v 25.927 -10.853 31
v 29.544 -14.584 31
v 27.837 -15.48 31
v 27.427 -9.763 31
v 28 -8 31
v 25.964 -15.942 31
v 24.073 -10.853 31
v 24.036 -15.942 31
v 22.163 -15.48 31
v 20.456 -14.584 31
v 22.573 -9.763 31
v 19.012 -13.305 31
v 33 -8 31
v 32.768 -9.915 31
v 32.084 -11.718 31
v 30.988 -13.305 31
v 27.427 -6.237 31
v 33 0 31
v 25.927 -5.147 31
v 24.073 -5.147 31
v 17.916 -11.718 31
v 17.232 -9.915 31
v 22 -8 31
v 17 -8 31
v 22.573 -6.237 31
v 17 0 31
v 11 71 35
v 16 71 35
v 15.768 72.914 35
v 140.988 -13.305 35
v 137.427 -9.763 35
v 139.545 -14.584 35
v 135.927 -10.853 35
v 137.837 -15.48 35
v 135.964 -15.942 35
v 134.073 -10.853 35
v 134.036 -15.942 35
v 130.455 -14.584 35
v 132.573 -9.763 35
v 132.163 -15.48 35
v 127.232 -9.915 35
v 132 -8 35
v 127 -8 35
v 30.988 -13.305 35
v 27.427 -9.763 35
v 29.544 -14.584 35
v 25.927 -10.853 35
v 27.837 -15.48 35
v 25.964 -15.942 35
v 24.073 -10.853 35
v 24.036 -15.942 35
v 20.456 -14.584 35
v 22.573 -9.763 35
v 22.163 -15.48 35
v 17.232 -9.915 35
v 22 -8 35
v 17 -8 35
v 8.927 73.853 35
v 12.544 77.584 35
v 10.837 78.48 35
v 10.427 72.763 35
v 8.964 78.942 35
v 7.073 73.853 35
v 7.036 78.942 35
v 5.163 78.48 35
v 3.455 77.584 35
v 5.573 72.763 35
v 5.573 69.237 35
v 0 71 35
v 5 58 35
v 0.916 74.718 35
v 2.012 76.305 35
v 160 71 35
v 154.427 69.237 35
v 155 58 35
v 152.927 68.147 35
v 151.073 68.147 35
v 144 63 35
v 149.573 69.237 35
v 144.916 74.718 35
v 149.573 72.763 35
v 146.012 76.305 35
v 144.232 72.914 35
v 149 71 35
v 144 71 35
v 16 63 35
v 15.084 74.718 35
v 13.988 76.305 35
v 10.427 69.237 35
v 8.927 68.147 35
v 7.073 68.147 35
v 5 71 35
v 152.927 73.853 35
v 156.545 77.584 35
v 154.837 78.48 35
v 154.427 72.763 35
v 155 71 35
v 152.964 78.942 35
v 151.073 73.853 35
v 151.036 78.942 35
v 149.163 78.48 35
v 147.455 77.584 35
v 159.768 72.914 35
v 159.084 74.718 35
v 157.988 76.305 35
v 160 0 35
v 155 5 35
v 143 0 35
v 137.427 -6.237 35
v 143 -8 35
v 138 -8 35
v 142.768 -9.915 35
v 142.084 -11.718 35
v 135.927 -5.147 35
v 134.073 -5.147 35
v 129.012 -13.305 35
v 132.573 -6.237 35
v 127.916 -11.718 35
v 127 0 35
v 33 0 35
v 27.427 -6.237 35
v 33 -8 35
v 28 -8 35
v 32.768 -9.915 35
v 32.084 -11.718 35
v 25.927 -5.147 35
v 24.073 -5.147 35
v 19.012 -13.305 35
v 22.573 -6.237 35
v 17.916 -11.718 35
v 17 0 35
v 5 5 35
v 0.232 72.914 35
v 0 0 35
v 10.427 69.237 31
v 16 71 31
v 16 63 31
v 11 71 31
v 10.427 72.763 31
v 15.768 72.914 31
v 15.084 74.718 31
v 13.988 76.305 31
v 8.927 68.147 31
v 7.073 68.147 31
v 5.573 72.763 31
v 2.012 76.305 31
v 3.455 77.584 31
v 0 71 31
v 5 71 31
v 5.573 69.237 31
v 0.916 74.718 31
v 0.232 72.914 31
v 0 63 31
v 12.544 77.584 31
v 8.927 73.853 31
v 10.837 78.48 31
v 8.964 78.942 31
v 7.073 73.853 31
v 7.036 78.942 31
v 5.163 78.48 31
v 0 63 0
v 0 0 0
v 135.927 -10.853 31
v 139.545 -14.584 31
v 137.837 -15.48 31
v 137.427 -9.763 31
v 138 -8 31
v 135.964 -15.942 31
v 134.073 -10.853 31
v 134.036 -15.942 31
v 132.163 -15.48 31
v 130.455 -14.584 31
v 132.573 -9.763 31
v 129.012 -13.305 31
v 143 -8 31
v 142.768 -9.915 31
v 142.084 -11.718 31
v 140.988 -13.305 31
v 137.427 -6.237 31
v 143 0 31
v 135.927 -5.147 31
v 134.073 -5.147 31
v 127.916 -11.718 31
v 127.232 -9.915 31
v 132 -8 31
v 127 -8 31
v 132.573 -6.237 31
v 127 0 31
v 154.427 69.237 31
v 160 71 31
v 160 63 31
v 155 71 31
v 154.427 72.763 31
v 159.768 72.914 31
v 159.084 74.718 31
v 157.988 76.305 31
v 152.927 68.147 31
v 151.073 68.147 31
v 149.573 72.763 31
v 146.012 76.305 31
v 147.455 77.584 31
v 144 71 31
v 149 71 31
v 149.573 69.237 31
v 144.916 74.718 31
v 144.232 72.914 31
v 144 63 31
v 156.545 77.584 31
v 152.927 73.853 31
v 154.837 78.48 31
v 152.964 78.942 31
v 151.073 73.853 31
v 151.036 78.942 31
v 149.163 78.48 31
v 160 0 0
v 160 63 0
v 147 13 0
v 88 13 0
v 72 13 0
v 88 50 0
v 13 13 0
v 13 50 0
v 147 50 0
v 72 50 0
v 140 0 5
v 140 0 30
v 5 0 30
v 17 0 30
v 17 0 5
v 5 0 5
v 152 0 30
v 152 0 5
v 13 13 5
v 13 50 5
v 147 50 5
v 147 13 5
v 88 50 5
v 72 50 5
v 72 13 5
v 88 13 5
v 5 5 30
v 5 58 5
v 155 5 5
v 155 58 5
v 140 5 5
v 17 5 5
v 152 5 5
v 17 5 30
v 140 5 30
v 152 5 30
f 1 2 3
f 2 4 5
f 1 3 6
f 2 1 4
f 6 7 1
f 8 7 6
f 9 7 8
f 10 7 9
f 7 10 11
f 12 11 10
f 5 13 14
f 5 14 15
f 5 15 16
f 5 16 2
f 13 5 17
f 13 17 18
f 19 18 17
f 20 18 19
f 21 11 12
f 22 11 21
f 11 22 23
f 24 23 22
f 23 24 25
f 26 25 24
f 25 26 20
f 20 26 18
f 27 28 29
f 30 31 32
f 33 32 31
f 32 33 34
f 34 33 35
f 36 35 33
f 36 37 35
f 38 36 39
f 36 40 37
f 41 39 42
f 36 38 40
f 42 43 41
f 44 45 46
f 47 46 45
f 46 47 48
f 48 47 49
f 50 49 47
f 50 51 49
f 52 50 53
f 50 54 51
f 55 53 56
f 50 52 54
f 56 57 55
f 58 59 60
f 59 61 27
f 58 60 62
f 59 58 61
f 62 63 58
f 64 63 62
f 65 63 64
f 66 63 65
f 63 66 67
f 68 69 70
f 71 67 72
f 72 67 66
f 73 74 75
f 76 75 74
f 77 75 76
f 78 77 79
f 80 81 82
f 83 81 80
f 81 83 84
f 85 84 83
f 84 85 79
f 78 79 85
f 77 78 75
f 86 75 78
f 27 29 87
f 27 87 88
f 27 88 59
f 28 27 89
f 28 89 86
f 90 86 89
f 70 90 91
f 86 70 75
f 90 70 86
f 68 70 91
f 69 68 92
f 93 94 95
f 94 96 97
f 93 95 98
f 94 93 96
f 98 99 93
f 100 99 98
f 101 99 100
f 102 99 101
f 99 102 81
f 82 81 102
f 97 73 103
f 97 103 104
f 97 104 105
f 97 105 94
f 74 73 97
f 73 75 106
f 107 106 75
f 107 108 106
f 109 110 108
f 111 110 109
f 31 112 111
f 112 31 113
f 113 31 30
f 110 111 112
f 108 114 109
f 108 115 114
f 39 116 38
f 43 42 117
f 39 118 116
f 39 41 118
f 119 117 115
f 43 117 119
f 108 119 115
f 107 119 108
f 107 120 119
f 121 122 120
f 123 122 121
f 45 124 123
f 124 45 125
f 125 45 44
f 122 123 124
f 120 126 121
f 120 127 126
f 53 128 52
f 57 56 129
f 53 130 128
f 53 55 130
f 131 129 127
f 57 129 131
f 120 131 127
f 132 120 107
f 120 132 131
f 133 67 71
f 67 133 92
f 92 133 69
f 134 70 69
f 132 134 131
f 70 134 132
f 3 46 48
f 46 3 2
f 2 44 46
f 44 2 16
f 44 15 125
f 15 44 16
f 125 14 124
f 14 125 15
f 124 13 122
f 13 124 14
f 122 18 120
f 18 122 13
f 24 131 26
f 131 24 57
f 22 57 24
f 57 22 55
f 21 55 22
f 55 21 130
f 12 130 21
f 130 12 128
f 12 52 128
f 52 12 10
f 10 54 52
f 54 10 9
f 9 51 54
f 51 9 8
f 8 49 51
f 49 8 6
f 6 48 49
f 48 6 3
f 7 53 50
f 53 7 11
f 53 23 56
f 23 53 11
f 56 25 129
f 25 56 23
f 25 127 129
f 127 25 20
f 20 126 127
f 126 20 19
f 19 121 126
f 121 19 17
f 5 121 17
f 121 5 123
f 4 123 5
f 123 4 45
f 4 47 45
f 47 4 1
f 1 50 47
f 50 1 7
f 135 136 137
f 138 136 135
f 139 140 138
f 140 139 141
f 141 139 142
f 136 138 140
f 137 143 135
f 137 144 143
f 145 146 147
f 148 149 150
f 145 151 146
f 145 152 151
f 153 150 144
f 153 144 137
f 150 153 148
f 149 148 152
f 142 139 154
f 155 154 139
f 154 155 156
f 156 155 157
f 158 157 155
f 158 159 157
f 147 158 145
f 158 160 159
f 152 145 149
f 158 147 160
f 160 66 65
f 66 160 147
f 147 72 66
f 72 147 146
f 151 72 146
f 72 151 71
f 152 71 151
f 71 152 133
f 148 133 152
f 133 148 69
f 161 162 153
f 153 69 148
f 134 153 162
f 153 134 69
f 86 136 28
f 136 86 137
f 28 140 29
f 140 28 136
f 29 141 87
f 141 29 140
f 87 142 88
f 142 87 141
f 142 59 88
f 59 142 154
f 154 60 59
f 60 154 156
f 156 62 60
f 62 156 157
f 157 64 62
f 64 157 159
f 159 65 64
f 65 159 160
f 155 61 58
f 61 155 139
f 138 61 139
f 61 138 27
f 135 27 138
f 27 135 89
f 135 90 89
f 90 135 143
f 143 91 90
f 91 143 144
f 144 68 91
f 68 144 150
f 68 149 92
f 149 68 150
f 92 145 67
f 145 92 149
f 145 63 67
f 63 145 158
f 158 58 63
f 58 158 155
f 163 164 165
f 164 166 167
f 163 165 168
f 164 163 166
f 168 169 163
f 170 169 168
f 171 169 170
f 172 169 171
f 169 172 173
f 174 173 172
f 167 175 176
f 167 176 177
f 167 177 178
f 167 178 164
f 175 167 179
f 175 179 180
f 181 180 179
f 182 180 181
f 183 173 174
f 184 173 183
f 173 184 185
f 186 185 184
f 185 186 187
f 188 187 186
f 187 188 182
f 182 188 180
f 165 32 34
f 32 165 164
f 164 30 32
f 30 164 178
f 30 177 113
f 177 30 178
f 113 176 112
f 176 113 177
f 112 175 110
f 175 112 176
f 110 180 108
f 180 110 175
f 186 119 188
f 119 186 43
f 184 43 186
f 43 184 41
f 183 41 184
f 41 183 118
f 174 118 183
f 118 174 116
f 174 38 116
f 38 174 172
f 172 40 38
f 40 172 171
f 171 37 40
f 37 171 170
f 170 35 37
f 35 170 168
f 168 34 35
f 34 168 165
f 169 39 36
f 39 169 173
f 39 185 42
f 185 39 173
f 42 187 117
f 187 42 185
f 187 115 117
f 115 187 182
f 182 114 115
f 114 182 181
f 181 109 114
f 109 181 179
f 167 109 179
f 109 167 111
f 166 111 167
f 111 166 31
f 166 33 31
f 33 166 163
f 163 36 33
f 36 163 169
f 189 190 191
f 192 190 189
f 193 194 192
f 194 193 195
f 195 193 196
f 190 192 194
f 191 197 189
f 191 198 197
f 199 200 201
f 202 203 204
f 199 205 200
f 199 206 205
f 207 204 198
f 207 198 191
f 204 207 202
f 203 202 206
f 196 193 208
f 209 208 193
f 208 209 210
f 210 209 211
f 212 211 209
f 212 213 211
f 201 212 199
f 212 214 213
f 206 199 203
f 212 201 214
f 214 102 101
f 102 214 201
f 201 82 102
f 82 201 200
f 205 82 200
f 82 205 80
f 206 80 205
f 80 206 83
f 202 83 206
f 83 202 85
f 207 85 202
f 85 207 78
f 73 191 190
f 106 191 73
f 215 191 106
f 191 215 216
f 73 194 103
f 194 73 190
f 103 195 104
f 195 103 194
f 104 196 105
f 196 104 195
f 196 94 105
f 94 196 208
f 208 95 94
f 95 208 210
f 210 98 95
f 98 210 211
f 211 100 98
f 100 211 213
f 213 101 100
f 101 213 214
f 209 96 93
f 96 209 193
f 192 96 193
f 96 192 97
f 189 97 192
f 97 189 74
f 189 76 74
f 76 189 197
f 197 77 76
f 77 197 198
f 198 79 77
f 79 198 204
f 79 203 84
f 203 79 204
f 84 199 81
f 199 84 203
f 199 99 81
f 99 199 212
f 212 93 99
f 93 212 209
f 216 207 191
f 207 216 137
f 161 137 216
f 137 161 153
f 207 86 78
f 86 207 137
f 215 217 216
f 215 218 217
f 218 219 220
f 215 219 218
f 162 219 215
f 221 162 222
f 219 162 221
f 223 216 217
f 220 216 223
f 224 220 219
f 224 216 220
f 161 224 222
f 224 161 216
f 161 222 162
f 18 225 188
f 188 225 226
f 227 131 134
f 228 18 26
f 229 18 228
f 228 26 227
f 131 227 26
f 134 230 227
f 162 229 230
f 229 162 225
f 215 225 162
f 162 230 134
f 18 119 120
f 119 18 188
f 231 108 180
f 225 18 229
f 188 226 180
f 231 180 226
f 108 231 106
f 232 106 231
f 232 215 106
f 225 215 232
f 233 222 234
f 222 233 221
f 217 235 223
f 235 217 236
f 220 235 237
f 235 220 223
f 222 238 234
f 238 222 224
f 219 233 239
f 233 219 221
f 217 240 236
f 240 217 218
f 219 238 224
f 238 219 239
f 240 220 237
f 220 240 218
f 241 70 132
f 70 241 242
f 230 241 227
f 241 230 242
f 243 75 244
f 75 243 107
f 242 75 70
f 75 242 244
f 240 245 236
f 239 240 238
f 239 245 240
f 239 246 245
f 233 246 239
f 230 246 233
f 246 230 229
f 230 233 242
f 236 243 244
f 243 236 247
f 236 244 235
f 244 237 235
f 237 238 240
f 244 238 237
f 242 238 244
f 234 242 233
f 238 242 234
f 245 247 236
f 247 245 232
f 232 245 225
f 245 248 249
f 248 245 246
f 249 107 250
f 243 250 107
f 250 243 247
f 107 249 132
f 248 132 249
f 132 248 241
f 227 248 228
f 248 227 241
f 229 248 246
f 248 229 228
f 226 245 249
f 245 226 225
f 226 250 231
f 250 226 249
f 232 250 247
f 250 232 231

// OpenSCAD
// all dimensions are in millimeters

// battery dimensions
BHEIGHT = 150;
BWIDTH = 53;
BDEPTH = 30;

// other constants
PADDING = 5;
SCREWRAD = 3;
SCREWPADDING = 5;
SCREWHEIGHT = 4;
SSUM = SCREWRAD + SCREWPADDING;

module screw() {
    linear_extrude(height=SCREWHEIGHT)
        difference() {
            hull() {
                circle(SSUM);
                translate([-SSUM, 0])
                    square(2*SSUM);
            }
            circle(SCREWRAD);
        }
}

BEDGE = 8;

module battery() {
    union() {
        cube(size=[BHEIGHT, BWIDTH, BDEPTH], center=false);
        translate([BEDGE, BEDGE, -BDEPTH])
        difference() {
            cube(size=[BHEIGHT-2*BEDGE, BWIDTH-2*BEDGE, 10*BDEPTH], center=false);
            translate([BHEIGHT/2-2*BEDGE, 0, 0])
                cube(size=[2*BEDGE, BWIDTH-2*BEDGE, 10*BDEPTH], center=false);
        }
    }
}

// battery();

HOLEWID = 12;

difference() {
    union() {
        translate([SSUM+PADDING+HOLEWID, -SSUM, BDEPTH+PADDING-SCREWHEIGHT])
            screw();
        translate([SSUM, SSUM+BWIDTH+2*PADDING, BDEPTH+PADDING-SCREWHEIGHT])
            rotate([0, 0, 180])
                screw();
        translate([BHEIGHT+2*PADDING-SSUM-PADDING-HOLEWID, -SSUM, BDEPTH+PADDING-SCREWHEIGHT])
            screw();
        translate([BHEIGHT+2*PADDING-SSUM, SSUM+BWIDTH+2*PADDING, BDEPTH+PADDING-SCREWHEIGHT])
            rotate([0, 0, 180])
                screw();
        cube(size=[BHEIGHT+2*PADDING, BWIDTH+2*PADDING, BDEPTH+PADDING], center=false);
    }
    translate([PADDING, PADDING, PADDING])
        battery();
    translate([PADDING, 0, PADDING])
        cube([HOLEWID, PADDING, BDEPTH-PADDING]);
    translate([BHEIGHT-2*PADDING, 0, PADDING])
        cube([HOLEWID, PADDING, BDEPTH-PADDING]);
}
